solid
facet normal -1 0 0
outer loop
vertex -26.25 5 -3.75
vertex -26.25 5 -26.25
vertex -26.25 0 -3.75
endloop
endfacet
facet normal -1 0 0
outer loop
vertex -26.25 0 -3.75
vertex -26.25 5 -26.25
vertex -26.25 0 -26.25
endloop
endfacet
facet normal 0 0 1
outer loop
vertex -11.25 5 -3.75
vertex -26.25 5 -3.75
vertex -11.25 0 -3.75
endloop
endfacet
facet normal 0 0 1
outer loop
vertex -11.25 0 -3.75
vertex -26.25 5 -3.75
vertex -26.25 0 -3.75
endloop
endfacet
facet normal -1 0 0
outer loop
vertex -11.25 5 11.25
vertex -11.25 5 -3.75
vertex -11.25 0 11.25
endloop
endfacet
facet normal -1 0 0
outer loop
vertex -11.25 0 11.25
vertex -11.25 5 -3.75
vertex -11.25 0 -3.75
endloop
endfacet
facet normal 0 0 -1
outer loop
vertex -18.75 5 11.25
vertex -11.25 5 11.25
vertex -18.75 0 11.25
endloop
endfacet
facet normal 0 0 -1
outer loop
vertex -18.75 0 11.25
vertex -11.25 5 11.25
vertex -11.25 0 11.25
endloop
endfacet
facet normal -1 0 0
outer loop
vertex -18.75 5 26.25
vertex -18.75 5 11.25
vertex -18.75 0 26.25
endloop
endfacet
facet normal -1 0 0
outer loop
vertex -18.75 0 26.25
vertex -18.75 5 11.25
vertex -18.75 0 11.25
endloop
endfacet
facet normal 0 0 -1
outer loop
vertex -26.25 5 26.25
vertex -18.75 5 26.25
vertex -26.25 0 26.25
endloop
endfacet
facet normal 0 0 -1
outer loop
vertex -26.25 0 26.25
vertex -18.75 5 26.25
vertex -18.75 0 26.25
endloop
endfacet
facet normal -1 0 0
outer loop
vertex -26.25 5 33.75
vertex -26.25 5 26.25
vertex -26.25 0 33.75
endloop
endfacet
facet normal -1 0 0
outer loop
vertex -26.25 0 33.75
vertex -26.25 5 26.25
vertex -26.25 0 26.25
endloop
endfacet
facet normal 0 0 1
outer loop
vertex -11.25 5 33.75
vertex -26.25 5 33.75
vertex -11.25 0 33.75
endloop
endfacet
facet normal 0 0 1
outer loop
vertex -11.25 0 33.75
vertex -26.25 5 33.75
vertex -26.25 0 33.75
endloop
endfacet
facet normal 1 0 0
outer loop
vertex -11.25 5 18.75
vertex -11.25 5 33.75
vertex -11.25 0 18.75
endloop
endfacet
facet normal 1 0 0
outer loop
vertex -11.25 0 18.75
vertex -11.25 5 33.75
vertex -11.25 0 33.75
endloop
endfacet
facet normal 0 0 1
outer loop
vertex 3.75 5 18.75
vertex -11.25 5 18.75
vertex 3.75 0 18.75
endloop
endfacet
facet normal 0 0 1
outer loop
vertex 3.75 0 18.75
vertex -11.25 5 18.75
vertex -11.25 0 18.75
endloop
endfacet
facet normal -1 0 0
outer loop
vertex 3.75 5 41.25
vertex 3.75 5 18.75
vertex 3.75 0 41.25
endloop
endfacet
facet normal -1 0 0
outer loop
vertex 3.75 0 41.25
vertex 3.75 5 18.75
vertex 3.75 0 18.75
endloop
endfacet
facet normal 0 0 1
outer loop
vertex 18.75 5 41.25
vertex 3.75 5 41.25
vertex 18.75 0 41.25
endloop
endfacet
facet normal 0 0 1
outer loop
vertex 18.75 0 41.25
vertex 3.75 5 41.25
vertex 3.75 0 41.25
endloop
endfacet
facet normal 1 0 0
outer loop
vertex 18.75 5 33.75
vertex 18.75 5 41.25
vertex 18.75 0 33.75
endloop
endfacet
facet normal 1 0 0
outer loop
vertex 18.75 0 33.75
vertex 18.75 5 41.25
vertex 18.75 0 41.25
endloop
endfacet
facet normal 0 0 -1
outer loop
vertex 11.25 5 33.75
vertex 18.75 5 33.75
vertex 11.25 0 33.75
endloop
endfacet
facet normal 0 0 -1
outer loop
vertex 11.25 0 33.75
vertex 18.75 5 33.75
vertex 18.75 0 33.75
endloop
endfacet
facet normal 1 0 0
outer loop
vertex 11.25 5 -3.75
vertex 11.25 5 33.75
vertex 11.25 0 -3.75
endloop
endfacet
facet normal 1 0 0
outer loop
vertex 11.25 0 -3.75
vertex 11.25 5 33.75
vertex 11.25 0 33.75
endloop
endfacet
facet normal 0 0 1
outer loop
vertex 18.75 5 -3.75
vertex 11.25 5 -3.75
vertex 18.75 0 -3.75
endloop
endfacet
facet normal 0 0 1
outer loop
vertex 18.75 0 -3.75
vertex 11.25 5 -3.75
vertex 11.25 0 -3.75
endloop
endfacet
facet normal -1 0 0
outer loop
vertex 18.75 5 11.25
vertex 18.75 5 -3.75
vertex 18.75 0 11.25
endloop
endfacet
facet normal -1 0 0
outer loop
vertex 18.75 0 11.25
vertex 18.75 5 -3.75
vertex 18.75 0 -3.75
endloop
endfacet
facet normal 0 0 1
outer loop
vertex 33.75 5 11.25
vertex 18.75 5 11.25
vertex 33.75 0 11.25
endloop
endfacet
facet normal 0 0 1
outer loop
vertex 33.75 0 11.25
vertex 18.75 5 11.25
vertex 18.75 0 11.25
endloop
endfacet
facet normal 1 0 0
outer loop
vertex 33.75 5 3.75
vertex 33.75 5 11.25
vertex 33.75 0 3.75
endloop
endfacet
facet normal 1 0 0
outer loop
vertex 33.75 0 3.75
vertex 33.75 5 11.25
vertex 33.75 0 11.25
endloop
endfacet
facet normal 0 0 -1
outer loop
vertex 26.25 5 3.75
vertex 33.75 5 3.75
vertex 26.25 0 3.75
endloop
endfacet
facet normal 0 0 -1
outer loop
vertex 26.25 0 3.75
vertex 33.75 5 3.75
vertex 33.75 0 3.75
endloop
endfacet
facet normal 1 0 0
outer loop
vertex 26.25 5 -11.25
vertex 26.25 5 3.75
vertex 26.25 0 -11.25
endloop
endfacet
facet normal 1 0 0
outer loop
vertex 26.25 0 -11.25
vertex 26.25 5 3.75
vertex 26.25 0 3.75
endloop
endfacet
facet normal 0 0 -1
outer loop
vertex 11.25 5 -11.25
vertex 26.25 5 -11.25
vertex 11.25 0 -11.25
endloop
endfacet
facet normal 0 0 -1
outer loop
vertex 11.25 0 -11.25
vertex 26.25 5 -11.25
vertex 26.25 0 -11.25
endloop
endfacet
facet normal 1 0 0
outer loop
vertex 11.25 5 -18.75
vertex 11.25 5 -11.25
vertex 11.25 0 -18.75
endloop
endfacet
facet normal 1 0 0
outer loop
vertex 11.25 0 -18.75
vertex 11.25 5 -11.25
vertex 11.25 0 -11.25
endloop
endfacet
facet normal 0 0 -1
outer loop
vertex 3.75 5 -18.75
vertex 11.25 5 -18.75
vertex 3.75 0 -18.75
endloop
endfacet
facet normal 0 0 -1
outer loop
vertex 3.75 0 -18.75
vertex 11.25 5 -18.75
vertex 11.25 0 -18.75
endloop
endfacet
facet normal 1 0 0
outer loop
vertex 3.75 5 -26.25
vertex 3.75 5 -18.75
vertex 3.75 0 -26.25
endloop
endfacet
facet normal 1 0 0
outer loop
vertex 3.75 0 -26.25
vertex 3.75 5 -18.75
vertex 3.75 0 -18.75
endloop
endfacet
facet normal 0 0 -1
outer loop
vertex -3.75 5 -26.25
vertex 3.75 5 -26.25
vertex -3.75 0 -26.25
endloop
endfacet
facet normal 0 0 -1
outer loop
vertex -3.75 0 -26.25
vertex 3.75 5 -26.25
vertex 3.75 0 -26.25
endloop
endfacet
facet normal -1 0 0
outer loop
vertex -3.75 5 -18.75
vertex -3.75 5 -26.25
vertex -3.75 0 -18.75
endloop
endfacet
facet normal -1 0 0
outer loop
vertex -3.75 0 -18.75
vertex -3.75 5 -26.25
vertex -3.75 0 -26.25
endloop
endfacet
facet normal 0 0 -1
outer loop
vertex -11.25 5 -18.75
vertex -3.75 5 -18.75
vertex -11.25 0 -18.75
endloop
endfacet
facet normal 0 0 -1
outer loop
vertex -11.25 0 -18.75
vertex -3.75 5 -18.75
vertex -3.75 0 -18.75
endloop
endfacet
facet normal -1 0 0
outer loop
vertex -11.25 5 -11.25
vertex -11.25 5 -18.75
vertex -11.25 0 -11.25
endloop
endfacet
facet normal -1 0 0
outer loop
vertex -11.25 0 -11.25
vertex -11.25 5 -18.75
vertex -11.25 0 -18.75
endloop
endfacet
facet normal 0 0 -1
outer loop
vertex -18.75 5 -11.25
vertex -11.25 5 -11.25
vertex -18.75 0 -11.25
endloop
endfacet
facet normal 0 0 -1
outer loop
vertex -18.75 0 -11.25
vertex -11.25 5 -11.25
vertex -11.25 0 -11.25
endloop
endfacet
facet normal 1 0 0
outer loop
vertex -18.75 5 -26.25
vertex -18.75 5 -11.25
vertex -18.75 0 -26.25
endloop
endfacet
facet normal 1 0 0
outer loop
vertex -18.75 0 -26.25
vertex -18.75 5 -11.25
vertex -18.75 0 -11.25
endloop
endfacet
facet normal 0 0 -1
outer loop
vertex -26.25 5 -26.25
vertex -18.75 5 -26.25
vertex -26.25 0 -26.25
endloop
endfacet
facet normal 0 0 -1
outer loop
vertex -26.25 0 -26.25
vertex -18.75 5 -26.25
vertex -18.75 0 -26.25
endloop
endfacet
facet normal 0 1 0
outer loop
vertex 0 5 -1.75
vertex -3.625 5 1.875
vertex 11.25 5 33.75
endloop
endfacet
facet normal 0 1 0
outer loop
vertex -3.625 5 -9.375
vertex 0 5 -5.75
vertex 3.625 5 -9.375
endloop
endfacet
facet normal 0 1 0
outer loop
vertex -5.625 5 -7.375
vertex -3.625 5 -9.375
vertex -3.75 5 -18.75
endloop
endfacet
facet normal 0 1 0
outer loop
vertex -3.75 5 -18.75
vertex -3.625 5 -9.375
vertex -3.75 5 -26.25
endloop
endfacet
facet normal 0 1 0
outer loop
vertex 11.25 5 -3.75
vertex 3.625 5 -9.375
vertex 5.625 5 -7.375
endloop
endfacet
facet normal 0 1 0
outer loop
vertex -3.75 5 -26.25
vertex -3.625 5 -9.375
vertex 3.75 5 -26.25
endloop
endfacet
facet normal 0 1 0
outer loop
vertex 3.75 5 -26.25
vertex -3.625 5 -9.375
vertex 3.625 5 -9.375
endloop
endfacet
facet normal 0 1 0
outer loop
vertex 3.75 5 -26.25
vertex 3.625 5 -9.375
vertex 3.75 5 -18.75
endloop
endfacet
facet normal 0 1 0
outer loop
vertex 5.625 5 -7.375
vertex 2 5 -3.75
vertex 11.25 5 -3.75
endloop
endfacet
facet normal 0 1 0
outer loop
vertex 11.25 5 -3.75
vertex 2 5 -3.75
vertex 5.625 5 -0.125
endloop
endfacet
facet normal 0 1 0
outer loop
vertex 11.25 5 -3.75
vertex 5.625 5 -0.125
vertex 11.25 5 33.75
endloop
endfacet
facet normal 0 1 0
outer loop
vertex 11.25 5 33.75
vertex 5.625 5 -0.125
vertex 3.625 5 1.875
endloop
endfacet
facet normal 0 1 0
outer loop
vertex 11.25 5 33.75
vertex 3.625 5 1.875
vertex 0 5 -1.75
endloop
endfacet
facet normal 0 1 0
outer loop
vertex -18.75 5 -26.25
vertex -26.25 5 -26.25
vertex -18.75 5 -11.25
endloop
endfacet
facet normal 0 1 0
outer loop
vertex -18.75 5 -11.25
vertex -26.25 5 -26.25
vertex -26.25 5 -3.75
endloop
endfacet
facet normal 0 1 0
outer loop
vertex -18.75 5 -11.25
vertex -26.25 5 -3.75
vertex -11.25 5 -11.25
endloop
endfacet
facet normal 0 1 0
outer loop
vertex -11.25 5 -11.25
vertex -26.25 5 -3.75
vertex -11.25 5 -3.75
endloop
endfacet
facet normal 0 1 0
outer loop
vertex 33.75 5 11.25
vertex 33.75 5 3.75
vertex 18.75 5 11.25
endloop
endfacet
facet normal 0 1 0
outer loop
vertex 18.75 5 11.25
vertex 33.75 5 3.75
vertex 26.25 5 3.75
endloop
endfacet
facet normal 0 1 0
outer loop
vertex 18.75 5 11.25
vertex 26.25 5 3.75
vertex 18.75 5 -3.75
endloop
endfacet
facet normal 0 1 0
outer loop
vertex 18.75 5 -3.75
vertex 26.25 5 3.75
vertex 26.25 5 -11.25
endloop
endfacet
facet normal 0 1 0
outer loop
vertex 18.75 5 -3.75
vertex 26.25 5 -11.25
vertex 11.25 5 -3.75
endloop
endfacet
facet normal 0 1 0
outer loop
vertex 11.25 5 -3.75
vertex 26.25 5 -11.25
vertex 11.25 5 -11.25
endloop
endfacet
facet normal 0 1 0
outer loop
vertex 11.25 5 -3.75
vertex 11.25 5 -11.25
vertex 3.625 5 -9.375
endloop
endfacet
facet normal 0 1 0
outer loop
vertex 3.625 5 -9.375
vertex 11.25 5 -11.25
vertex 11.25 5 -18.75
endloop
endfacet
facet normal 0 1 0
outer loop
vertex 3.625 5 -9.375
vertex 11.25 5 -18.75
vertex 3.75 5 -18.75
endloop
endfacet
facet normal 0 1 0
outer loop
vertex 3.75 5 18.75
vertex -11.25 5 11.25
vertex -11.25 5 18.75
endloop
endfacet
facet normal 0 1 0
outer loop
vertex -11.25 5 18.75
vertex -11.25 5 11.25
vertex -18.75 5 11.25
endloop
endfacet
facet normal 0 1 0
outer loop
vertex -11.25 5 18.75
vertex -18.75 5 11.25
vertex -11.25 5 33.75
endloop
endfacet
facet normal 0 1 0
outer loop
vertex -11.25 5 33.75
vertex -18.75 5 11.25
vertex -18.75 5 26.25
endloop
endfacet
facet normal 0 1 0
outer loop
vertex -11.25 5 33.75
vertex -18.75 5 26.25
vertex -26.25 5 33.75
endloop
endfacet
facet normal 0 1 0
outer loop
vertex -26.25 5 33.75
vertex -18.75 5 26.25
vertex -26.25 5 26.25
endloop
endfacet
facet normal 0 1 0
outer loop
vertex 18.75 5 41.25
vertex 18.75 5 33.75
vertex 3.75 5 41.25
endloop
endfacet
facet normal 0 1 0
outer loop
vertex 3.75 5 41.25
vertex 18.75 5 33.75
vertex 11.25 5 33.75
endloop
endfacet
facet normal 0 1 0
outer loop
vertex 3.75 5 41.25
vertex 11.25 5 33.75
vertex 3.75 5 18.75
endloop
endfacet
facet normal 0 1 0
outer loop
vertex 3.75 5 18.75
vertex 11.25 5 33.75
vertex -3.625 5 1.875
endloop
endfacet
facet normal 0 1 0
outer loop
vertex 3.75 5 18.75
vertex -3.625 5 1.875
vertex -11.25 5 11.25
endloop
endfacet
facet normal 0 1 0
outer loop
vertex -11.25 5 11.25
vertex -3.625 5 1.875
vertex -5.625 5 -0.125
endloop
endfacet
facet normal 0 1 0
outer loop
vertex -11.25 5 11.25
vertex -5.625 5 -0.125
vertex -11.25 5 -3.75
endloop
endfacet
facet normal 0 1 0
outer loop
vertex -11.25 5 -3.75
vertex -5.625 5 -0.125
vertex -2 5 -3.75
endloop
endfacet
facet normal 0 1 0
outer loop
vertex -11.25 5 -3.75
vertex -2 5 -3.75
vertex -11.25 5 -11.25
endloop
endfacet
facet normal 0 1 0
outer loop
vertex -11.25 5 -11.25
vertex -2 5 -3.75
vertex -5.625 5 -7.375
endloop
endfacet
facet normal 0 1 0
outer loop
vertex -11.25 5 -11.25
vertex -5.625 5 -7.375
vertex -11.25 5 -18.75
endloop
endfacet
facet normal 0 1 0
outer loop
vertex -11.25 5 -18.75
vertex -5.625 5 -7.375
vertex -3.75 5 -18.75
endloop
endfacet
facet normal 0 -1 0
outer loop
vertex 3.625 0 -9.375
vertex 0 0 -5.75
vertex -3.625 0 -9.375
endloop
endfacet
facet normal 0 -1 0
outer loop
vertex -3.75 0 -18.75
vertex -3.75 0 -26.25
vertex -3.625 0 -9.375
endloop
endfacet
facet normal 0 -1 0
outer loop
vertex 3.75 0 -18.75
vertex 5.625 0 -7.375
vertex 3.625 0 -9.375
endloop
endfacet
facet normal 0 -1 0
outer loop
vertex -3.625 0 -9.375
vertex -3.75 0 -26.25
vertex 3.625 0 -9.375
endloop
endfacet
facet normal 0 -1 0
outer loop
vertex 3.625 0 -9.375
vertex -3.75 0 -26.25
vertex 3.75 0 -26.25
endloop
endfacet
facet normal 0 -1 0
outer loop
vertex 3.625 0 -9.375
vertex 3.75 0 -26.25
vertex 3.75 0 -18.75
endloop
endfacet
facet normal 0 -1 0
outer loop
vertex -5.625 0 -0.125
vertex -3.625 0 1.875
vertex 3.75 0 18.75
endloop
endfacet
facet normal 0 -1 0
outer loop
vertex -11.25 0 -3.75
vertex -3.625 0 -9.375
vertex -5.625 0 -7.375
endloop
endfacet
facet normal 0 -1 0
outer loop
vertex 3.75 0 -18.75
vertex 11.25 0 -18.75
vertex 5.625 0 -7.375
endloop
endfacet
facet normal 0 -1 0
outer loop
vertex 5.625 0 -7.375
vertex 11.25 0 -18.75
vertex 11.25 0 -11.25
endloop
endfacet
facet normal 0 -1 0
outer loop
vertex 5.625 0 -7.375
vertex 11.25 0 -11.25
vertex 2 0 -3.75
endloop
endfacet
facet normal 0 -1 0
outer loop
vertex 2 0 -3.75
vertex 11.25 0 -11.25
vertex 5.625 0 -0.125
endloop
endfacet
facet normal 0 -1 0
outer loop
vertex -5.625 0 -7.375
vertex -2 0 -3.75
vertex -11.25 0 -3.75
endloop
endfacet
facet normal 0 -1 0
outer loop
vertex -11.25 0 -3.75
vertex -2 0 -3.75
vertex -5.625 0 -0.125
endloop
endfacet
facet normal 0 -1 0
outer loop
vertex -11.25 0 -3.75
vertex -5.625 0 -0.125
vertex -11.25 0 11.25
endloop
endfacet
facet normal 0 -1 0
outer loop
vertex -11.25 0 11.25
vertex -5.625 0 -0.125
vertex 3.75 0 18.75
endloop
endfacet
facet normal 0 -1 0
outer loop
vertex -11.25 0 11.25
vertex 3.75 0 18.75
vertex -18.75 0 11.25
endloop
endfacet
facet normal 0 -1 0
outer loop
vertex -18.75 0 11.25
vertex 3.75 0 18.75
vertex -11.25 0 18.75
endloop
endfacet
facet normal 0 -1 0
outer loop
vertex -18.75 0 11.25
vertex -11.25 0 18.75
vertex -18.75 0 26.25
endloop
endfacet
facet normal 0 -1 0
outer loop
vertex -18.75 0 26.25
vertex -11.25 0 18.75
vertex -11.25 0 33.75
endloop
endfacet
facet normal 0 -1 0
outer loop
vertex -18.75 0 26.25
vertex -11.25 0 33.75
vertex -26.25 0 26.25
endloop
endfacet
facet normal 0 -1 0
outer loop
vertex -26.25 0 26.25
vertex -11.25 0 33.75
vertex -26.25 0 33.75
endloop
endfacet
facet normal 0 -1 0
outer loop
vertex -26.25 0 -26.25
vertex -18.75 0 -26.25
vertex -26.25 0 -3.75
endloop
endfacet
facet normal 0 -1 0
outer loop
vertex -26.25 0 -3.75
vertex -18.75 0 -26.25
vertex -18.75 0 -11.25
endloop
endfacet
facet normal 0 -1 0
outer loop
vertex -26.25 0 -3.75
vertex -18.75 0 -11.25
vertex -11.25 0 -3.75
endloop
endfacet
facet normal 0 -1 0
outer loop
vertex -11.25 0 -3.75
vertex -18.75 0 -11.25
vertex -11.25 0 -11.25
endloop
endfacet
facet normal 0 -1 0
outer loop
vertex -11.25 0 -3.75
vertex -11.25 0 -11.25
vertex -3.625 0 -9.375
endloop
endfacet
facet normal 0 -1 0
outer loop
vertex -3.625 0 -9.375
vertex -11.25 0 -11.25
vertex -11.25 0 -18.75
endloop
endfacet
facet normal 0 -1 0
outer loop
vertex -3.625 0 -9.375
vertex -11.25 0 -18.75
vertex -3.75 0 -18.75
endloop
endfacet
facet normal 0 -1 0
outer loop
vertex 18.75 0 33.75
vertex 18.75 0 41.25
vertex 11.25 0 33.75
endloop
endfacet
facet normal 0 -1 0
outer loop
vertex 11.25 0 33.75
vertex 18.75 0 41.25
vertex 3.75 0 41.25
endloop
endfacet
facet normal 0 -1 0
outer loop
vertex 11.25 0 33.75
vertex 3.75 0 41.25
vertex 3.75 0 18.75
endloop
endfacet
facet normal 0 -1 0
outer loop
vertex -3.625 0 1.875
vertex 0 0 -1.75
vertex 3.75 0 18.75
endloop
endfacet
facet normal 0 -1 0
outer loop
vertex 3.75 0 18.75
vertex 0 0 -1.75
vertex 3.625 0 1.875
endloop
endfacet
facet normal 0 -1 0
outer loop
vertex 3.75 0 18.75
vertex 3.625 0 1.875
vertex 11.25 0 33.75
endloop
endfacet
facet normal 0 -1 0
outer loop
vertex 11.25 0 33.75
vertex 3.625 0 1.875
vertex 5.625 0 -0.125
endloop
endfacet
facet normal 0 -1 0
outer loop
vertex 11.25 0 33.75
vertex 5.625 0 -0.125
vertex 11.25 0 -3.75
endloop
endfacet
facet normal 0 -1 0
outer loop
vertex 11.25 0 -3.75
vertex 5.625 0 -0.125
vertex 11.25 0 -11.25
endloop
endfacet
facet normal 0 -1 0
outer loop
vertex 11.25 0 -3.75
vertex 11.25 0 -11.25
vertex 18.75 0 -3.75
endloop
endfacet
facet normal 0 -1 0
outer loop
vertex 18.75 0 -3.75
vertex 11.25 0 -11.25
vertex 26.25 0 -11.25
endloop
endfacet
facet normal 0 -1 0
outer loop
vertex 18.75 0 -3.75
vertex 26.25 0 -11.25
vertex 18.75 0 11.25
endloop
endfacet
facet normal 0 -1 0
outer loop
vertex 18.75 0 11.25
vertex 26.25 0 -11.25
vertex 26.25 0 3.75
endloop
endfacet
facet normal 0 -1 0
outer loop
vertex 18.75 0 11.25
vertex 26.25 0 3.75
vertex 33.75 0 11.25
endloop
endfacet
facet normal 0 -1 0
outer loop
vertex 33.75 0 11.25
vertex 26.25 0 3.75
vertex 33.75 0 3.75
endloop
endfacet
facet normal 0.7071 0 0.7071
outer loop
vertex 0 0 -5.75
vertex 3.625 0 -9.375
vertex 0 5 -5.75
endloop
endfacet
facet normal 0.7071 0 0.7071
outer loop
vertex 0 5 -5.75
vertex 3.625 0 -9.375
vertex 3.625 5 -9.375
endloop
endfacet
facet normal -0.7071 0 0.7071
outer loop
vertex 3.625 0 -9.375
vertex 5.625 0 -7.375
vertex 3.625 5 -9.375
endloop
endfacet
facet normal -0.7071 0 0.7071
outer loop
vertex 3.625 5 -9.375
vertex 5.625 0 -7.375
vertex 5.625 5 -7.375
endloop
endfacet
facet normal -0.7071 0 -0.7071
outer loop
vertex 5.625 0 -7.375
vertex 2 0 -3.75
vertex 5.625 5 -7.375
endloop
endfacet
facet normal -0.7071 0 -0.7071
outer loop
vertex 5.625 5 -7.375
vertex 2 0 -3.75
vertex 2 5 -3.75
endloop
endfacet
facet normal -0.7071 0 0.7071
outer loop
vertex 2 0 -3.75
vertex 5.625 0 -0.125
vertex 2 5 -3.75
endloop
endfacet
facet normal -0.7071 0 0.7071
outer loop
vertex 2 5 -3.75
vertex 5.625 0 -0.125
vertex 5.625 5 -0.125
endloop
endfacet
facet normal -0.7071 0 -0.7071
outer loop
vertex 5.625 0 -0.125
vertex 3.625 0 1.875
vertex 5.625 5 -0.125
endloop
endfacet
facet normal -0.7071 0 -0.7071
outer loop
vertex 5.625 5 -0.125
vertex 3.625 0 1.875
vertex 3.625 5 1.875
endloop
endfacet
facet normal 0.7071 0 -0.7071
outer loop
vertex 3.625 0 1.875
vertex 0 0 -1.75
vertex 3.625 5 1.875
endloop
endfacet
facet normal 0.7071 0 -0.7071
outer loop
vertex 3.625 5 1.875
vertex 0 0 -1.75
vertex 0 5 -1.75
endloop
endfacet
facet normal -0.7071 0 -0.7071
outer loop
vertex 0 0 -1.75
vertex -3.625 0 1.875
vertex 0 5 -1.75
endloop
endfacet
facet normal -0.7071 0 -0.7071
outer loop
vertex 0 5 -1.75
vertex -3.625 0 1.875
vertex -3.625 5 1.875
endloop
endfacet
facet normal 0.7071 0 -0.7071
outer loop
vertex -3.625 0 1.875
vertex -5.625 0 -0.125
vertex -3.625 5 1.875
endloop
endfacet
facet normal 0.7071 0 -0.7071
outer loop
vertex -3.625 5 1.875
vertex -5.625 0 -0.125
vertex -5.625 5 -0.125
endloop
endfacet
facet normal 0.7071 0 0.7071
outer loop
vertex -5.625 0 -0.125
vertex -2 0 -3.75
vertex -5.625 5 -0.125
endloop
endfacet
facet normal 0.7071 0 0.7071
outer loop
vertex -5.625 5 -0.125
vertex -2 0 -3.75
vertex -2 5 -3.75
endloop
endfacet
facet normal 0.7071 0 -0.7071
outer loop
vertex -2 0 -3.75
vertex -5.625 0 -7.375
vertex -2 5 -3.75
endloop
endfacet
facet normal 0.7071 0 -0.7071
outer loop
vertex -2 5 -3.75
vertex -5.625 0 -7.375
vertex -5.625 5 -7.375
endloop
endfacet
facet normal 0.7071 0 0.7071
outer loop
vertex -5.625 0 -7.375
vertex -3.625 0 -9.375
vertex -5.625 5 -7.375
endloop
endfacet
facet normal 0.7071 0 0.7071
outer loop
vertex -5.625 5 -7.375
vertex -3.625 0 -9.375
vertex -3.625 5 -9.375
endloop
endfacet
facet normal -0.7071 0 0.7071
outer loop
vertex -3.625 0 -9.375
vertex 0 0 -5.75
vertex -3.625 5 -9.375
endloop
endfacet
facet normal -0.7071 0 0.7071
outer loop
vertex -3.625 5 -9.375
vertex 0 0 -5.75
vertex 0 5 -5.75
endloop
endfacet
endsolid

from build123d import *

# Parameters (mm, degrees)
SKETCH1_W           = 22.5
SKETCH1_H           = 37.5
SKETCH1_W_2         = 7.5
SKETCH1_H_2         = 7.5
BOSS_EXTRUDE1_DEPTH = 5
CUT_EXTRUDE1_DEPTH  = 54.531532763


with BuildPart() as part:
    # Sketch1 → Boss-Extrude1 (new body)
    with BuildSketch(Plane(origin=(0, 0, 0), x_dir=(1, 0, 0), z_dir=(0, 1, 0))):
        Polygon((-11.25, 3.75), (-11.25, 11.25), (-18.75, 11.25), (-18.75, 26.25), (-26.25, 26.25), (-26.25, 3.75), align=None)
        Rectangle(SKETCH1_W, SKETCH1_H)
        with Locations((0, 22.5)):
            Rectangle(SKETCH1_W_2, SKETCH1_H_2)
        Polygon((26.25, 11.25), (11.25, 11.25), (11.25, 3.75), (18.75, 3.75), (18.75, -11.25), (33.75, -11.25), (33.75, -3.75), (26.25, -3.75), align=None)
        Polygon((11.25, -18.75), (3.75, -18.75), (3.75, -41.25), (18.75, -41.25), (18.75, -33.75), (11.25, -33.75), align=None)
        Polygon((-11.25, -18.75), (-11.25, -11.25), (-18.75, -11.25), (-18.75, -26.25), (-26.25, -26.25), (-26.25, -33.75), (-11.25, -33.75), align=None)
    extrude(amount=BOSS_EXTRUDE1_DEPTH)

    # Sketch2 → Cut-Extrude1 (cut, through all)
    with BuildSketch(Plane(origin=(0, 5, 0), x_dir=(1, 0, 0), z_dir=(0, 1, 0))):
        Polygon((0, 5.75), (-3.625, 9.375), (-5.625, 7.375), (-2, 3.75), (-5.625, 0.125), (-3.625, -1.875), (0, 1.75), (3.625, -1.875), (5.625, 0.125), (2, 3.75), (5.625, 7.375), (3.625, 9.375), align=None)
    extrude(amount=-CUT_EXTRUDE1_DEPTH, mode=Mode.SUBTRACT)


solid = part.part
